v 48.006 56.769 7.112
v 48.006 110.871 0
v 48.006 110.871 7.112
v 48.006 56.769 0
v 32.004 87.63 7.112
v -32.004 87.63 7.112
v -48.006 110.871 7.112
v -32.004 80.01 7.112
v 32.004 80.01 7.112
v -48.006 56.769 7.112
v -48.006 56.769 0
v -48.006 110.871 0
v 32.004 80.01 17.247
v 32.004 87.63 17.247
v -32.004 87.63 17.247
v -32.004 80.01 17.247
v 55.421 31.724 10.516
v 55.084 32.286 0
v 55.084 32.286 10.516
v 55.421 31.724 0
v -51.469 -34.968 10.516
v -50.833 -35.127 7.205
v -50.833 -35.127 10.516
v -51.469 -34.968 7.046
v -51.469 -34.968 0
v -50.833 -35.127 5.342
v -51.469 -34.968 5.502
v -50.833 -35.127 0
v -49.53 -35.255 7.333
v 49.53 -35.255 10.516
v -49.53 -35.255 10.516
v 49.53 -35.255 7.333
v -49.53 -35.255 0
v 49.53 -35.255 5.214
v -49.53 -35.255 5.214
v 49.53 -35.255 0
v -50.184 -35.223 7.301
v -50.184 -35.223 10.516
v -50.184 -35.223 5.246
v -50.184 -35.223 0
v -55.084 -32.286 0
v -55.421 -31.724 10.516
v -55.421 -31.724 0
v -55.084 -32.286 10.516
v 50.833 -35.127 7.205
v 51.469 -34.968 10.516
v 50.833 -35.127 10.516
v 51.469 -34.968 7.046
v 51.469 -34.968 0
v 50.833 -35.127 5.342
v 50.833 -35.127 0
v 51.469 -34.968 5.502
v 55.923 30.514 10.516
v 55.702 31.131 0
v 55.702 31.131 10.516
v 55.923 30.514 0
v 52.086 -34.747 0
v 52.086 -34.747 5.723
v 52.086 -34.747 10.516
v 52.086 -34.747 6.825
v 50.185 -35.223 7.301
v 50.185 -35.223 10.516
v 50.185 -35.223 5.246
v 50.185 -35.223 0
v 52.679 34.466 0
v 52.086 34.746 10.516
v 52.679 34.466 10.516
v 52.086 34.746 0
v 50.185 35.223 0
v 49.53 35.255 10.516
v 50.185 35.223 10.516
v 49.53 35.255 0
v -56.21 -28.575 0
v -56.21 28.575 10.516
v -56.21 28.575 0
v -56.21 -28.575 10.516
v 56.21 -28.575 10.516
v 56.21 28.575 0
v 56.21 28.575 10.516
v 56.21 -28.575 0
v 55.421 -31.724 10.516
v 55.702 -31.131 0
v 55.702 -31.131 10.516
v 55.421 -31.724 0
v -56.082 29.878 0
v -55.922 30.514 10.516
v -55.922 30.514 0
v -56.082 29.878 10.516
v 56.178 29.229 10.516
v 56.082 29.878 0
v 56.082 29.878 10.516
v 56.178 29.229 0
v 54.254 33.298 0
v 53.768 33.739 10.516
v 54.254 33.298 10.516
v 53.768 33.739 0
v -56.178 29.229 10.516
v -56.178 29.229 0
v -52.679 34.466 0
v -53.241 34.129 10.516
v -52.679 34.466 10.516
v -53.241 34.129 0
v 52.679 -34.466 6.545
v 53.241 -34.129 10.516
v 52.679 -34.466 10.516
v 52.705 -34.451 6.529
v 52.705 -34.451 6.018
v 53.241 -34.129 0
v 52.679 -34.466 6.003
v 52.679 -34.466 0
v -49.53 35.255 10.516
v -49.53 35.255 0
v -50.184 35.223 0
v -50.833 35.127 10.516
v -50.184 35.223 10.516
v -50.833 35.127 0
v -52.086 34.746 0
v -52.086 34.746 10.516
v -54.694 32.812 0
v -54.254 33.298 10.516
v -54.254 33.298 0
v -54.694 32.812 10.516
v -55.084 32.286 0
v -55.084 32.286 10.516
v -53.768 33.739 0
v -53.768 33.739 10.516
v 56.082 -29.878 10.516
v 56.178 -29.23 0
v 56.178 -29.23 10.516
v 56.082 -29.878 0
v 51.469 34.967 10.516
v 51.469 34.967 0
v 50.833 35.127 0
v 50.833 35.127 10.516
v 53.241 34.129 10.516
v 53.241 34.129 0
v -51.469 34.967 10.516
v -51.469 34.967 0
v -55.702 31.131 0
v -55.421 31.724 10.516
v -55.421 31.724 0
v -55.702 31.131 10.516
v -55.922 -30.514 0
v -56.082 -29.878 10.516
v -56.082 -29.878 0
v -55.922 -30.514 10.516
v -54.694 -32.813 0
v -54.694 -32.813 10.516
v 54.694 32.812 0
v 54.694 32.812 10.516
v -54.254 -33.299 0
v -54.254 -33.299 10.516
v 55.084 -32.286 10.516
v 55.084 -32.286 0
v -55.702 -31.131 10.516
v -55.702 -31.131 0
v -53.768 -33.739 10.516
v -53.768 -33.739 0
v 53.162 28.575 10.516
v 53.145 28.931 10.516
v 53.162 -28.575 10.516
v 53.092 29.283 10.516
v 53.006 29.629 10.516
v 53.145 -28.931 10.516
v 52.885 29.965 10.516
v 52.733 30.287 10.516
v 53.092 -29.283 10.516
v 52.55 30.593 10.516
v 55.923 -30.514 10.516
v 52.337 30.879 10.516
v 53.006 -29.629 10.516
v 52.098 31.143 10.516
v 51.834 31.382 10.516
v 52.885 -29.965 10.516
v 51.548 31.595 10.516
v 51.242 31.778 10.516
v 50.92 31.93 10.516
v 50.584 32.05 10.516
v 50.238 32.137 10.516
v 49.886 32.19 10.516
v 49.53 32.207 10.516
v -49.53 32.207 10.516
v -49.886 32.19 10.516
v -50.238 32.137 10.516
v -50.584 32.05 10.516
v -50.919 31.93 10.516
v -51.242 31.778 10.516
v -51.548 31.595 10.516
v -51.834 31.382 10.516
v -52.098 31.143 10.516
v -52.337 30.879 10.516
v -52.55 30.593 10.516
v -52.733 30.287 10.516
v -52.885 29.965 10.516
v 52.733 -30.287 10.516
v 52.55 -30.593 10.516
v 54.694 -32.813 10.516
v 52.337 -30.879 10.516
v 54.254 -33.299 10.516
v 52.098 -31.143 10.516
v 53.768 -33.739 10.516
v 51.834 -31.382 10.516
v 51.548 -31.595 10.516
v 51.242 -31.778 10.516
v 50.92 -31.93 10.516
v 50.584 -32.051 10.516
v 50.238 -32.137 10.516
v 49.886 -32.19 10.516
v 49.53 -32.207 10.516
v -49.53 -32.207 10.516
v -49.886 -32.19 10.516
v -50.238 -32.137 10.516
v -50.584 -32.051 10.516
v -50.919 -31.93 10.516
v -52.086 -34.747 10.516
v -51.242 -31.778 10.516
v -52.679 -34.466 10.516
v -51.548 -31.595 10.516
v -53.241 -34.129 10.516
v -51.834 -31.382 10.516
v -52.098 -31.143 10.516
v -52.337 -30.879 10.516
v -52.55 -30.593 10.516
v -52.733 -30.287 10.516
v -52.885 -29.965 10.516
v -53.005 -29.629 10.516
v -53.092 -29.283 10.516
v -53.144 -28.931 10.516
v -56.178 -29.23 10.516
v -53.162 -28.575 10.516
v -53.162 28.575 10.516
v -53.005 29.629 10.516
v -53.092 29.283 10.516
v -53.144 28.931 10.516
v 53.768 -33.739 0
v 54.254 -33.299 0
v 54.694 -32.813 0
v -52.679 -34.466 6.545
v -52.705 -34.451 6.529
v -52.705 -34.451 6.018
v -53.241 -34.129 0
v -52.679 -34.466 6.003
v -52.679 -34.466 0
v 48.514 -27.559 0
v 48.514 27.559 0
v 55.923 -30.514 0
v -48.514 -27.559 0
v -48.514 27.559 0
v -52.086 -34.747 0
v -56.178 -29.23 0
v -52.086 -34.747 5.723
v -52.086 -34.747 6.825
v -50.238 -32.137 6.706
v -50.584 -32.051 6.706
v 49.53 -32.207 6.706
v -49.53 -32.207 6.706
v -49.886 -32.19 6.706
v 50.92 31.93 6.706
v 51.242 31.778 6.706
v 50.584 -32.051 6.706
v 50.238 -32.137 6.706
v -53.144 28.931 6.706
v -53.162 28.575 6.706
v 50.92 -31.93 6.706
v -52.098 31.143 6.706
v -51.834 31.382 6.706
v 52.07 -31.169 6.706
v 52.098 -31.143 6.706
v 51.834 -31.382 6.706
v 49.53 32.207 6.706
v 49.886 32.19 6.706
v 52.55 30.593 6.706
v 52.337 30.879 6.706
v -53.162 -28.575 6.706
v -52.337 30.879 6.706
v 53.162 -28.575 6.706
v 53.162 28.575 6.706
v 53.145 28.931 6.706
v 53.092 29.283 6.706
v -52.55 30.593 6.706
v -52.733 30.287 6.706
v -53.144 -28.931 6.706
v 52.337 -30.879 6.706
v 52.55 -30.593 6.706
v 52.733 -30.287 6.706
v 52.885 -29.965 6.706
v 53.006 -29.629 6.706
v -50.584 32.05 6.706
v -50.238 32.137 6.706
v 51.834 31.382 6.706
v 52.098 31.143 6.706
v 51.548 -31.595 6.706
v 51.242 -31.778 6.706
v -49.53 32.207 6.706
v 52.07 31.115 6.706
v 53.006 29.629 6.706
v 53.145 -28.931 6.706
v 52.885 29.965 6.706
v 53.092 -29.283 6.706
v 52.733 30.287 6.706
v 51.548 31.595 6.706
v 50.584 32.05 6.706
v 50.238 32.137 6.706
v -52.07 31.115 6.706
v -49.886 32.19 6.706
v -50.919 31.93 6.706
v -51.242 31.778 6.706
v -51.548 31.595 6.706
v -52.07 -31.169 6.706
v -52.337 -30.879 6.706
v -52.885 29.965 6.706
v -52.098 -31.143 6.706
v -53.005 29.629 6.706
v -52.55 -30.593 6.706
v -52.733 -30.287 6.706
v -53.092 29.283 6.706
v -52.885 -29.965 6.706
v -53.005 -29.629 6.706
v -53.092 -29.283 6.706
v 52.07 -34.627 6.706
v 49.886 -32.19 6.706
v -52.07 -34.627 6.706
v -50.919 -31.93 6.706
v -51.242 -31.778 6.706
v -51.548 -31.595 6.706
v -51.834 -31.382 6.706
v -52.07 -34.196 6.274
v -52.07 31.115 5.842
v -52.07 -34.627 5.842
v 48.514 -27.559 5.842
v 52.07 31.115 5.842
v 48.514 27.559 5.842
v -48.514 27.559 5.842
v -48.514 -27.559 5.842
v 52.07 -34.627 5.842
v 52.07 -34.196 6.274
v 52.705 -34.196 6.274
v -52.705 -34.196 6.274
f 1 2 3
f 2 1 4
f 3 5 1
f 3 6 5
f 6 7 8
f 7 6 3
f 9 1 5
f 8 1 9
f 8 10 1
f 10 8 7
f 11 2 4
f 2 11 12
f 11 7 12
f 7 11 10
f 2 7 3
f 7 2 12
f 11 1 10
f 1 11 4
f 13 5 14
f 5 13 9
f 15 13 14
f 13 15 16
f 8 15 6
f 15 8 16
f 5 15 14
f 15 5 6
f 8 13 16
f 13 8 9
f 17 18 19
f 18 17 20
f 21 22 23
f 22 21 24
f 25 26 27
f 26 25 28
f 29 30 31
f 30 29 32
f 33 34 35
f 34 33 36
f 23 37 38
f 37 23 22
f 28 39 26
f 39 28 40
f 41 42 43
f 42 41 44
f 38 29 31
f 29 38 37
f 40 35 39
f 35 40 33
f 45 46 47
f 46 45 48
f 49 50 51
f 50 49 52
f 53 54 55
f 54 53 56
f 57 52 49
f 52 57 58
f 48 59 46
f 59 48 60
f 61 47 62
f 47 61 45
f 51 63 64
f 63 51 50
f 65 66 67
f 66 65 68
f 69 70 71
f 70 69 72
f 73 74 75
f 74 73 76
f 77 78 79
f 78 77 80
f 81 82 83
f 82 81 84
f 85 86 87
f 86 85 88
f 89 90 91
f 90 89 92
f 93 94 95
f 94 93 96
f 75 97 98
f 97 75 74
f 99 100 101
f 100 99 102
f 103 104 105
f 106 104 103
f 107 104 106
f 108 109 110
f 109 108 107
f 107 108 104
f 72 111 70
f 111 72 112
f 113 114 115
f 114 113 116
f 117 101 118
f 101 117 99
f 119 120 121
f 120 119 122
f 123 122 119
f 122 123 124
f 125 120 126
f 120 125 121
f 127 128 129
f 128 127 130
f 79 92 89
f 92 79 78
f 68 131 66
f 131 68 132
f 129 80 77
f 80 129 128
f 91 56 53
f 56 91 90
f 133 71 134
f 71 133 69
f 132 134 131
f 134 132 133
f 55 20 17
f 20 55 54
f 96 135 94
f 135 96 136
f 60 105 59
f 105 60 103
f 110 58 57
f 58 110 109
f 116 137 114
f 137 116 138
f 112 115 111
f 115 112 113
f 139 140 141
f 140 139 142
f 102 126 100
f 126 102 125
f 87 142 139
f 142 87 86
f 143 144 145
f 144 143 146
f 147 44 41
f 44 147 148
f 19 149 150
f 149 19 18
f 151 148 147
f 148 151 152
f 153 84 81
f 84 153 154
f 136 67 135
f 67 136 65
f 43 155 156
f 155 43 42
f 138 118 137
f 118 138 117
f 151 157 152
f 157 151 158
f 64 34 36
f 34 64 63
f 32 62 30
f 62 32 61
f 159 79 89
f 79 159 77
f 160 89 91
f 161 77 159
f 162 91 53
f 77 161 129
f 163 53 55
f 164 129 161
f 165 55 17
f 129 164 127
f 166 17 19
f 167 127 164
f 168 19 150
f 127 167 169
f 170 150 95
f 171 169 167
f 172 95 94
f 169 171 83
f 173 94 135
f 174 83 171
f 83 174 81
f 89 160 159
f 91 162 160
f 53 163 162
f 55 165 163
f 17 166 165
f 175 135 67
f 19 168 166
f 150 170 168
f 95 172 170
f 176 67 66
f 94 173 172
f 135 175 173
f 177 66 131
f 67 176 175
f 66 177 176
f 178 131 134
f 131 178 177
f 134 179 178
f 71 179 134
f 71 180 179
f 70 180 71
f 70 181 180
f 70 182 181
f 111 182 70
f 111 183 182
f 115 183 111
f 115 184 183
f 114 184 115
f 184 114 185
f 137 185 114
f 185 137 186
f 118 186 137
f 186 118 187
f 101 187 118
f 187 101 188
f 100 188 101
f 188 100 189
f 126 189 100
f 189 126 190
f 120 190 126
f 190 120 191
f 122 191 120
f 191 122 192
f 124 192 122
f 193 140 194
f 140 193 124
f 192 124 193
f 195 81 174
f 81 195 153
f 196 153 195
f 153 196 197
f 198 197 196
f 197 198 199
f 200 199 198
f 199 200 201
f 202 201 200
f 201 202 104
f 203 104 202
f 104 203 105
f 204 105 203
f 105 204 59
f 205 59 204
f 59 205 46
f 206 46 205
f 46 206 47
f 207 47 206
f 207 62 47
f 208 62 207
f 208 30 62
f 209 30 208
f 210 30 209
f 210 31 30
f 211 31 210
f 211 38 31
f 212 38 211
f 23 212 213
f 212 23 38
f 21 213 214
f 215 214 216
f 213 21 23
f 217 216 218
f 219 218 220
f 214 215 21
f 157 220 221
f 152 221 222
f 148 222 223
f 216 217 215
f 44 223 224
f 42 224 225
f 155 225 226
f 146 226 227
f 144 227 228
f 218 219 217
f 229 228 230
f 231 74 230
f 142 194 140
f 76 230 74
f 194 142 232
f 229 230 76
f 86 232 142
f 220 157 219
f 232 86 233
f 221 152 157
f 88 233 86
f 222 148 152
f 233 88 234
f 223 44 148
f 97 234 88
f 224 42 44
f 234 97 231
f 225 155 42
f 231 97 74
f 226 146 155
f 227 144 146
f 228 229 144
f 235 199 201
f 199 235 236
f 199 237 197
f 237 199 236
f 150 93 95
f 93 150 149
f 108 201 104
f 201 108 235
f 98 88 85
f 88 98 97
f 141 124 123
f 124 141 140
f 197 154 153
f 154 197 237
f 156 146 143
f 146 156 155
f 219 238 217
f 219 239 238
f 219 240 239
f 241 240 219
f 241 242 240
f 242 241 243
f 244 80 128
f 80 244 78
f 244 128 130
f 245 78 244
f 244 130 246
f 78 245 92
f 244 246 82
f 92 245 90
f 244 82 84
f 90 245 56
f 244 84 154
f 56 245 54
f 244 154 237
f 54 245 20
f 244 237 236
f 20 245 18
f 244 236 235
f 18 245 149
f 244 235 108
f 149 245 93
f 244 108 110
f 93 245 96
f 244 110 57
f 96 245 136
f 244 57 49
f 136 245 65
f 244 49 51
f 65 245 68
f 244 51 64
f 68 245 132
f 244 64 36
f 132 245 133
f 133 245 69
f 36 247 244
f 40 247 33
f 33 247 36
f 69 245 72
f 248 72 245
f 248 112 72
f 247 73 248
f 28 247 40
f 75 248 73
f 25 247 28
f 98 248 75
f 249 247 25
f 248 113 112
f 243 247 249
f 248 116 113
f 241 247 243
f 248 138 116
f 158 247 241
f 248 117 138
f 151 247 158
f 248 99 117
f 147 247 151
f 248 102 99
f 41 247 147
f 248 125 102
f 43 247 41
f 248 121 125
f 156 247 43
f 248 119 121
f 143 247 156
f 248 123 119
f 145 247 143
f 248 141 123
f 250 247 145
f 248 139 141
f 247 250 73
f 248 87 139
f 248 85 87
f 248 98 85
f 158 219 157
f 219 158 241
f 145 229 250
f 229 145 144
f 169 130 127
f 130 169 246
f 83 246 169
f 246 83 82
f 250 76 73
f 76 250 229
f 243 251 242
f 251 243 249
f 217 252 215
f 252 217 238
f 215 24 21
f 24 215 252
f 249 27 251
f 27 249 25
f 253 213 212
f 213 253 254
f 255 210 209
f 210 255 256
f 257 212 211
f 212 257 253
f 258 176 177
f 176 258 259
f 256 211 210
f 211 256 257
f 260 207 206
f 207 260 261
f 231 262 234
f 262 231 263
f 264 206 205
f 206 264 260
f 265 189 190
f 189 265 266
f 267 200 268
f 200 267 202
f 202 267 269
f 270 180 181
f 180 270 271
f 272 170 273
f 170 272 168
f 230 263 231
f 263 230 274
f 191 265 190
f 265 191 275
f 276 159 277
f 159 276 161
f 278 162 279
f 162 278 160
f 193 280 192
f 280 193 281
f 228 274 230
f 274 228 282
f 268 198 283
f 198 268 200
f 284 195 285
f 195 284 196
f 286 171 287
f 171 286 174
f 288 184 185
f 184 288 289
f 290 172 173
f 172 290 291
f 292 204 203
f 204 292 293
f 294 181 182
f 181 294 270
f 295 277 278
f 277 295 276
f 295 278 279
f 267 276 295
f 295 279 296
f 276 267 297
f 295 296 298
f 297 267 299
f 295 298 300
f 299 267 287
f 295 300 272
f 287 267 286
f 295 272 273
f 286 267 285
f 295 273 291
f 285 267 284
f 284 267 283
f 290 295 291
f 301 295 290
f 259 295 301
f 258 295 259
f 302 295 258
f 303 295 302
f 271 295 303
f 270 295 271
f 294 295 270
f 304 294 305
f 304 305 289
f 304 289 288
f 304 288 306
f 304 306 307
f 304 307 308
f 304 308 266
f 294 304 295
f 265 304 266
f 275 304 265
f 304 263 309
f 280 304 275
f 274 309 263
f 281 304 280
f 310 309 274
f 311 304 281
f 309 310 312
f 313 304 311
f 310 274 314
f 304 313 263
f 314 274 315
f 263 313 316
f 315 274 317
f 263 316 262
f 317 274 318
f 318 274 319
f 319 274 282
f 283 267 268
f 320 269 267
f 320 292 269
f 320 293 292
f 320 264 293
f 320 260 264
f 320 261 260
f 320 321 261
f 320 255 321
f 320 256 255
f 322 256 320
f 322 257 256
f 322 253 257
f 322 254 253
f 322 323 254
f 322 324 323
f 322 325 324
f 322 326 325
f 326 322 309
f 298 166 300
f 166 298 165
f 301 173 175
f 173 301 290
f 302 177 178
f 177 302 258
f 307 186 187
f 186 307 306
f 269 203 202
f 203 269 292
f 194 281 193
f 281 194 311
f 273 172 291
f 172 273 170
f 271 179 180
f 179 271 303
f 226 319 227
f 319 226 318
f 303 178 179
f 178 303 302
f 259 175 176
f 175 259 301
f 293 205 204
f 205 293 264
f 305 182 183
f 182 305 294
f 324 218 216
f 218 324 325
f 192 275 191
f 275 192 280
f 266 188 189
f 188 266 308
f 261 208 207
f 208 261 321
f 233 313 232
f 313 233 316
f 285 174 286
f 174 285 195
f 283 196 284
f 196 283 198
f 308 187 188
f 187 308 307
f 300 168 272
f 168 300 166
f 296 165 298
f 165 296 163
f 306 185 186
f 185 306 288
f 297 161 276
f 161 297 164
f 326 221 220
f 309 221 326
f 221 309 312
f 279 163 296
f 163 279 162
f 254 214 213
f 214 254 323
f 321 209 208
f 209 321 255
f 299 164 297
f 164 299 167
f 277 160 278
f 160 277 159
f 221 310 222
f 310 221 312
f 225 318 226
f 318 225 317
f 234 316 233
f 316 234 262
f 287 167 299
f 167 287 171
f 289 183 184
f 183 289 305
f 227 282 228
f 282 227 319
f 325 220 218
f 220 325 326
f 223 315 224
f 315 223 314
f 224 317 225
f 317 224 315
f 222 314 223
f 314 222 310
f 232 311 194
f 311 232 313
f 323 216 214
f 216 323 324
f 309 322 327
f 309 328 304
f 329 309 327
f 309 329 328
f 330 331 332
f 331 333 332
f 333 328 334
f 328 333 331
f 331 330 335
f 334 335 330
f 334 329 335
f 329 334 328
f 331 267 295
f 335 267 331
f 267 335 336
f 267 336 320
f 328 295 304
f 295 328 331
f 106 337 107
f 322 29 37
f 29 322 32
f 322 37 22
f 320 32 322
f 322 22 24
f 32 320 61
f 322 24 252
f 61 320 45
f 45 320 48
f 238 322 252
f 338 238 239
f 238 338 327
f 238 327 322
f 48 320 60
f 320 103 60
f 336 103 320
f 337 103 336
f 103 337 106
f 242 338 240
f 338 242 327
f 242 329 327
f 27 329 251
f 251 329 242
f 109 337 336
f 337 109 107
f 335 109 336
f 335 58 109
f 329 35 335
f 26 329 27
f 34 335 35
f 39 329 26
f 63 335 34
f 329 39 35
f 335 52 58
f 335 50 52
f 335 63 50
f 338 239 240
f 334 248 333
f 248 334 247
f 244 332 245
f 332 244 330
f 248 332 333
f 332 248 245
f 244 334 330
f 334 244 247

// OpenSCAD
// ============================================================================
// Kinetic Sand Ballast Preform Mold & Drop-Transfer Jig (With Stabilizer Track)
// ============================================================================
// Units: Defined in inches, automatically scaled to millimeters for STL export.
// Aluminum Plate Size: Cut 0.030" sheet to 4.080" wide x ~3.500" long.

$fn = 64; // Smoothness for outer corner radii

// --- Render View Options ---
//   "print"  = Mold body and pusher plunger side-by-side (ready for STL export)
//   "mold"   = Drop-mold jig only
//   "pusher" = Optional tamper/pusher block only
view_mode = "print";

// --- Matching Enclosure Reference Dimensions (Inches) ---
box_w = 4.150;          // Enclosure outer width (X)
box_d = 2.500;          // Enclosure outer depth (Y)
box_wall = 0.150;       // Enclosure wall thickness
box_corner_r = 0.125;   // Enclosure outer corner radius
sand_h = 0.250;         // Enclosure sand cavity depth

// --- Sand Slug Clearances ---
slug_side_inset = 0.015; // Inset on all 4 interior sides from cavity wall (0.015")
slug_h_inset = 0.020;    // Shallower than cavity depth (0.250" - 0.020" = 0.230")

// Computed Sand Slug Dimensions:
cav_w = box_w - 2 * box_wall;           // 3.850"
cav_d = box_d - 2 * box_wall;           // 2.200"
slug_w = cav_w - 2 * slug_side_inset;   // 3.820"
slug_d = cav_d - 2 * slug_side_inset;   // 2.170"
slug_h = sand_h - slug_h_inset;         // 0.230"

// --- 0.030" Sheet Aluminum Stabilizer Track & Leak Seal ---
plate_t = 0.030;         // Aluminum sheet thickness
plate_z_tol = 0.004;     // Snug vertical clearance to prevent sand leakage (0.034" slot)
slot_h = plate_t + plate_z_tol;
slot_groove = 0.140;     // Deep 3-sided groove (left, right, rear) for plate stability
slot_chamfer = 0.025;    // Front entry bevel for easy plate insertion

// --- Alignment Skirt & Mold Body ---
skirt_h = 0.150;         // Depth of outer alignment skirt gripping the paused box
skirt_tol = 0.018;       // Slip-fit clearance around paused box (per side)
skirt_wall = 0.120;      // Outer wall thickness (leaves 0.130" solid wall behind groove)

// --- Pusher / Tamper Block ---
pusher_tol = 0.020;      // Clearance inside mold cavity so pusher slides freely
pusher_base_h = 0.280;   // Tall enough to push slug flush onto enclosure floor
pusher_handle_h = 0.400;


// ============================================================================
// Helper Module
// ============================================================================
module rrect_centered(w, d, r) {
    r_safe = min(r, min(w, d)/2 - 0.0001);
    translate([-w/2, -d/2]) {
        if (r_safe > 0) {
            offset(r = r_safe)
                offset(delta = -r_safe)
                    square([w, d]);
        } else {
            square([w, d]);
        }
    }
}

// ============================================================================
// Drop-Mold Jig Module
// ============================================================================
module sand_drop_mold() {
    outer_w = box_w + 2 * skirt_tol + 2 * skirt_wall;
    outer_d = box_d + 2 * skirt_tol + 2 * skirt_wall;
    outer_r = box_corner_r + skirt_tol + skirt_wall;
    
    // Z-levels from bottom of alignment skirt (Z = 0):
    //   0.000" -> 0.150": Open alignment pocket over paused box
    //   0.150" -> 0.184": Deep 3-sided aluminum stabilizer track (0.140" groove)
    //   0.184" -> 0.414": Preformed sand slug cavity (0.230" tall)
    slot_bot_z = skirt_h;
    slug_bot_z = slot_bot_z + slot_h;
    total_mold_h = slug_bot_z + slug_h;

    slot_w = slug_w + 2 * slot_groove; // 4.100" groove-to-groove span
    slot_d = outer_d/2 + slug_d/2 + slot_groove;

    translate([0, 0, total_mold_h]) rotate([0, 180, 0]) difference() {
        // 1. Main Outer Block
        linear_extrude(height = total_mold_h)
            rrect_centered(outer_w, outer_d, outer_r);

        // 2. Bottom Alignment Skirt Pocket (slips over paused enclosure walls)
        translate([0, 0, -0.001])
            linear_extrude(height = skirt_h + 0.001)
                rrect_centered(box_w + 2 * skirt_tol, box_d + 2 * skirt_tol, box_corner_r + skirt_tol);

        // 3. Three-Sided Stabilizer Track (open at front Y < 0, 0.140" deep on left/right/back)
        translate([-slot_w/2, -outer_d/2 - 0.01, slot_bot_z])
            cube([slot_w, slot_d + 0.01, slot_h]);

        // 3b. Front Entry Lead-In Chamfer (guides aluminum sheet smoothly into tight groove)
        translate([0, -outer_d/2, slot_bot_z + slot_h/2])
            rotate(a = 45, v = [1.0, 0.0, 0.0])
                cube([slot_w + 2*slot_chamfer, slot_h + slot_chamfer, slot_h + slot_chamfer], center = true);

        // 4. Through-Cavity for Preformed Sand Slug (0.015" inset from box cavity on all 4 sides)
        translate([-slug_w/2, -slug_d/2, skirt_h - 0.001])
            cube([slug_w, slug_d, slot_h + slug_h + 0.005]);
    }
}

// ============================================================================
// Optional Tamper / Pusher Plunger Module
// ============================================================================
module sand_pusher() {
    pw = slug_w - 2 * pusher_tol;
    pd = slug_d - 2 * pusher_tol;
    
    union() {
        // Tamper plate (fits cleanly inside mold cavity)
        translate([-pw/2, -pd/2, 0])
            cube([pw, pd, pusher_base_h]);
        // Top finger grip bar
        translate([-pw/3, -0.150, pusher_base_h - 0.001])
            cube([2*pw/3, 0.300, pusher_handle_h]);
    }
}

// ============================================================================
// Assembly & Export Rendering (Scaled to Millimeters)
// ============================================================================
scale([25.4, 25.4, 25.4]) {
    if (view_mode == "print") {
        sand_drop_mold();
        translate([0, box_d + 0.800, 0])
            sand_pusher();
    } 
    else if (view_mode == "mold") {
        sand_drop_mold();
    } 
    else if (view_mode == "pusher") {
        sand_pusher();
    }
}
